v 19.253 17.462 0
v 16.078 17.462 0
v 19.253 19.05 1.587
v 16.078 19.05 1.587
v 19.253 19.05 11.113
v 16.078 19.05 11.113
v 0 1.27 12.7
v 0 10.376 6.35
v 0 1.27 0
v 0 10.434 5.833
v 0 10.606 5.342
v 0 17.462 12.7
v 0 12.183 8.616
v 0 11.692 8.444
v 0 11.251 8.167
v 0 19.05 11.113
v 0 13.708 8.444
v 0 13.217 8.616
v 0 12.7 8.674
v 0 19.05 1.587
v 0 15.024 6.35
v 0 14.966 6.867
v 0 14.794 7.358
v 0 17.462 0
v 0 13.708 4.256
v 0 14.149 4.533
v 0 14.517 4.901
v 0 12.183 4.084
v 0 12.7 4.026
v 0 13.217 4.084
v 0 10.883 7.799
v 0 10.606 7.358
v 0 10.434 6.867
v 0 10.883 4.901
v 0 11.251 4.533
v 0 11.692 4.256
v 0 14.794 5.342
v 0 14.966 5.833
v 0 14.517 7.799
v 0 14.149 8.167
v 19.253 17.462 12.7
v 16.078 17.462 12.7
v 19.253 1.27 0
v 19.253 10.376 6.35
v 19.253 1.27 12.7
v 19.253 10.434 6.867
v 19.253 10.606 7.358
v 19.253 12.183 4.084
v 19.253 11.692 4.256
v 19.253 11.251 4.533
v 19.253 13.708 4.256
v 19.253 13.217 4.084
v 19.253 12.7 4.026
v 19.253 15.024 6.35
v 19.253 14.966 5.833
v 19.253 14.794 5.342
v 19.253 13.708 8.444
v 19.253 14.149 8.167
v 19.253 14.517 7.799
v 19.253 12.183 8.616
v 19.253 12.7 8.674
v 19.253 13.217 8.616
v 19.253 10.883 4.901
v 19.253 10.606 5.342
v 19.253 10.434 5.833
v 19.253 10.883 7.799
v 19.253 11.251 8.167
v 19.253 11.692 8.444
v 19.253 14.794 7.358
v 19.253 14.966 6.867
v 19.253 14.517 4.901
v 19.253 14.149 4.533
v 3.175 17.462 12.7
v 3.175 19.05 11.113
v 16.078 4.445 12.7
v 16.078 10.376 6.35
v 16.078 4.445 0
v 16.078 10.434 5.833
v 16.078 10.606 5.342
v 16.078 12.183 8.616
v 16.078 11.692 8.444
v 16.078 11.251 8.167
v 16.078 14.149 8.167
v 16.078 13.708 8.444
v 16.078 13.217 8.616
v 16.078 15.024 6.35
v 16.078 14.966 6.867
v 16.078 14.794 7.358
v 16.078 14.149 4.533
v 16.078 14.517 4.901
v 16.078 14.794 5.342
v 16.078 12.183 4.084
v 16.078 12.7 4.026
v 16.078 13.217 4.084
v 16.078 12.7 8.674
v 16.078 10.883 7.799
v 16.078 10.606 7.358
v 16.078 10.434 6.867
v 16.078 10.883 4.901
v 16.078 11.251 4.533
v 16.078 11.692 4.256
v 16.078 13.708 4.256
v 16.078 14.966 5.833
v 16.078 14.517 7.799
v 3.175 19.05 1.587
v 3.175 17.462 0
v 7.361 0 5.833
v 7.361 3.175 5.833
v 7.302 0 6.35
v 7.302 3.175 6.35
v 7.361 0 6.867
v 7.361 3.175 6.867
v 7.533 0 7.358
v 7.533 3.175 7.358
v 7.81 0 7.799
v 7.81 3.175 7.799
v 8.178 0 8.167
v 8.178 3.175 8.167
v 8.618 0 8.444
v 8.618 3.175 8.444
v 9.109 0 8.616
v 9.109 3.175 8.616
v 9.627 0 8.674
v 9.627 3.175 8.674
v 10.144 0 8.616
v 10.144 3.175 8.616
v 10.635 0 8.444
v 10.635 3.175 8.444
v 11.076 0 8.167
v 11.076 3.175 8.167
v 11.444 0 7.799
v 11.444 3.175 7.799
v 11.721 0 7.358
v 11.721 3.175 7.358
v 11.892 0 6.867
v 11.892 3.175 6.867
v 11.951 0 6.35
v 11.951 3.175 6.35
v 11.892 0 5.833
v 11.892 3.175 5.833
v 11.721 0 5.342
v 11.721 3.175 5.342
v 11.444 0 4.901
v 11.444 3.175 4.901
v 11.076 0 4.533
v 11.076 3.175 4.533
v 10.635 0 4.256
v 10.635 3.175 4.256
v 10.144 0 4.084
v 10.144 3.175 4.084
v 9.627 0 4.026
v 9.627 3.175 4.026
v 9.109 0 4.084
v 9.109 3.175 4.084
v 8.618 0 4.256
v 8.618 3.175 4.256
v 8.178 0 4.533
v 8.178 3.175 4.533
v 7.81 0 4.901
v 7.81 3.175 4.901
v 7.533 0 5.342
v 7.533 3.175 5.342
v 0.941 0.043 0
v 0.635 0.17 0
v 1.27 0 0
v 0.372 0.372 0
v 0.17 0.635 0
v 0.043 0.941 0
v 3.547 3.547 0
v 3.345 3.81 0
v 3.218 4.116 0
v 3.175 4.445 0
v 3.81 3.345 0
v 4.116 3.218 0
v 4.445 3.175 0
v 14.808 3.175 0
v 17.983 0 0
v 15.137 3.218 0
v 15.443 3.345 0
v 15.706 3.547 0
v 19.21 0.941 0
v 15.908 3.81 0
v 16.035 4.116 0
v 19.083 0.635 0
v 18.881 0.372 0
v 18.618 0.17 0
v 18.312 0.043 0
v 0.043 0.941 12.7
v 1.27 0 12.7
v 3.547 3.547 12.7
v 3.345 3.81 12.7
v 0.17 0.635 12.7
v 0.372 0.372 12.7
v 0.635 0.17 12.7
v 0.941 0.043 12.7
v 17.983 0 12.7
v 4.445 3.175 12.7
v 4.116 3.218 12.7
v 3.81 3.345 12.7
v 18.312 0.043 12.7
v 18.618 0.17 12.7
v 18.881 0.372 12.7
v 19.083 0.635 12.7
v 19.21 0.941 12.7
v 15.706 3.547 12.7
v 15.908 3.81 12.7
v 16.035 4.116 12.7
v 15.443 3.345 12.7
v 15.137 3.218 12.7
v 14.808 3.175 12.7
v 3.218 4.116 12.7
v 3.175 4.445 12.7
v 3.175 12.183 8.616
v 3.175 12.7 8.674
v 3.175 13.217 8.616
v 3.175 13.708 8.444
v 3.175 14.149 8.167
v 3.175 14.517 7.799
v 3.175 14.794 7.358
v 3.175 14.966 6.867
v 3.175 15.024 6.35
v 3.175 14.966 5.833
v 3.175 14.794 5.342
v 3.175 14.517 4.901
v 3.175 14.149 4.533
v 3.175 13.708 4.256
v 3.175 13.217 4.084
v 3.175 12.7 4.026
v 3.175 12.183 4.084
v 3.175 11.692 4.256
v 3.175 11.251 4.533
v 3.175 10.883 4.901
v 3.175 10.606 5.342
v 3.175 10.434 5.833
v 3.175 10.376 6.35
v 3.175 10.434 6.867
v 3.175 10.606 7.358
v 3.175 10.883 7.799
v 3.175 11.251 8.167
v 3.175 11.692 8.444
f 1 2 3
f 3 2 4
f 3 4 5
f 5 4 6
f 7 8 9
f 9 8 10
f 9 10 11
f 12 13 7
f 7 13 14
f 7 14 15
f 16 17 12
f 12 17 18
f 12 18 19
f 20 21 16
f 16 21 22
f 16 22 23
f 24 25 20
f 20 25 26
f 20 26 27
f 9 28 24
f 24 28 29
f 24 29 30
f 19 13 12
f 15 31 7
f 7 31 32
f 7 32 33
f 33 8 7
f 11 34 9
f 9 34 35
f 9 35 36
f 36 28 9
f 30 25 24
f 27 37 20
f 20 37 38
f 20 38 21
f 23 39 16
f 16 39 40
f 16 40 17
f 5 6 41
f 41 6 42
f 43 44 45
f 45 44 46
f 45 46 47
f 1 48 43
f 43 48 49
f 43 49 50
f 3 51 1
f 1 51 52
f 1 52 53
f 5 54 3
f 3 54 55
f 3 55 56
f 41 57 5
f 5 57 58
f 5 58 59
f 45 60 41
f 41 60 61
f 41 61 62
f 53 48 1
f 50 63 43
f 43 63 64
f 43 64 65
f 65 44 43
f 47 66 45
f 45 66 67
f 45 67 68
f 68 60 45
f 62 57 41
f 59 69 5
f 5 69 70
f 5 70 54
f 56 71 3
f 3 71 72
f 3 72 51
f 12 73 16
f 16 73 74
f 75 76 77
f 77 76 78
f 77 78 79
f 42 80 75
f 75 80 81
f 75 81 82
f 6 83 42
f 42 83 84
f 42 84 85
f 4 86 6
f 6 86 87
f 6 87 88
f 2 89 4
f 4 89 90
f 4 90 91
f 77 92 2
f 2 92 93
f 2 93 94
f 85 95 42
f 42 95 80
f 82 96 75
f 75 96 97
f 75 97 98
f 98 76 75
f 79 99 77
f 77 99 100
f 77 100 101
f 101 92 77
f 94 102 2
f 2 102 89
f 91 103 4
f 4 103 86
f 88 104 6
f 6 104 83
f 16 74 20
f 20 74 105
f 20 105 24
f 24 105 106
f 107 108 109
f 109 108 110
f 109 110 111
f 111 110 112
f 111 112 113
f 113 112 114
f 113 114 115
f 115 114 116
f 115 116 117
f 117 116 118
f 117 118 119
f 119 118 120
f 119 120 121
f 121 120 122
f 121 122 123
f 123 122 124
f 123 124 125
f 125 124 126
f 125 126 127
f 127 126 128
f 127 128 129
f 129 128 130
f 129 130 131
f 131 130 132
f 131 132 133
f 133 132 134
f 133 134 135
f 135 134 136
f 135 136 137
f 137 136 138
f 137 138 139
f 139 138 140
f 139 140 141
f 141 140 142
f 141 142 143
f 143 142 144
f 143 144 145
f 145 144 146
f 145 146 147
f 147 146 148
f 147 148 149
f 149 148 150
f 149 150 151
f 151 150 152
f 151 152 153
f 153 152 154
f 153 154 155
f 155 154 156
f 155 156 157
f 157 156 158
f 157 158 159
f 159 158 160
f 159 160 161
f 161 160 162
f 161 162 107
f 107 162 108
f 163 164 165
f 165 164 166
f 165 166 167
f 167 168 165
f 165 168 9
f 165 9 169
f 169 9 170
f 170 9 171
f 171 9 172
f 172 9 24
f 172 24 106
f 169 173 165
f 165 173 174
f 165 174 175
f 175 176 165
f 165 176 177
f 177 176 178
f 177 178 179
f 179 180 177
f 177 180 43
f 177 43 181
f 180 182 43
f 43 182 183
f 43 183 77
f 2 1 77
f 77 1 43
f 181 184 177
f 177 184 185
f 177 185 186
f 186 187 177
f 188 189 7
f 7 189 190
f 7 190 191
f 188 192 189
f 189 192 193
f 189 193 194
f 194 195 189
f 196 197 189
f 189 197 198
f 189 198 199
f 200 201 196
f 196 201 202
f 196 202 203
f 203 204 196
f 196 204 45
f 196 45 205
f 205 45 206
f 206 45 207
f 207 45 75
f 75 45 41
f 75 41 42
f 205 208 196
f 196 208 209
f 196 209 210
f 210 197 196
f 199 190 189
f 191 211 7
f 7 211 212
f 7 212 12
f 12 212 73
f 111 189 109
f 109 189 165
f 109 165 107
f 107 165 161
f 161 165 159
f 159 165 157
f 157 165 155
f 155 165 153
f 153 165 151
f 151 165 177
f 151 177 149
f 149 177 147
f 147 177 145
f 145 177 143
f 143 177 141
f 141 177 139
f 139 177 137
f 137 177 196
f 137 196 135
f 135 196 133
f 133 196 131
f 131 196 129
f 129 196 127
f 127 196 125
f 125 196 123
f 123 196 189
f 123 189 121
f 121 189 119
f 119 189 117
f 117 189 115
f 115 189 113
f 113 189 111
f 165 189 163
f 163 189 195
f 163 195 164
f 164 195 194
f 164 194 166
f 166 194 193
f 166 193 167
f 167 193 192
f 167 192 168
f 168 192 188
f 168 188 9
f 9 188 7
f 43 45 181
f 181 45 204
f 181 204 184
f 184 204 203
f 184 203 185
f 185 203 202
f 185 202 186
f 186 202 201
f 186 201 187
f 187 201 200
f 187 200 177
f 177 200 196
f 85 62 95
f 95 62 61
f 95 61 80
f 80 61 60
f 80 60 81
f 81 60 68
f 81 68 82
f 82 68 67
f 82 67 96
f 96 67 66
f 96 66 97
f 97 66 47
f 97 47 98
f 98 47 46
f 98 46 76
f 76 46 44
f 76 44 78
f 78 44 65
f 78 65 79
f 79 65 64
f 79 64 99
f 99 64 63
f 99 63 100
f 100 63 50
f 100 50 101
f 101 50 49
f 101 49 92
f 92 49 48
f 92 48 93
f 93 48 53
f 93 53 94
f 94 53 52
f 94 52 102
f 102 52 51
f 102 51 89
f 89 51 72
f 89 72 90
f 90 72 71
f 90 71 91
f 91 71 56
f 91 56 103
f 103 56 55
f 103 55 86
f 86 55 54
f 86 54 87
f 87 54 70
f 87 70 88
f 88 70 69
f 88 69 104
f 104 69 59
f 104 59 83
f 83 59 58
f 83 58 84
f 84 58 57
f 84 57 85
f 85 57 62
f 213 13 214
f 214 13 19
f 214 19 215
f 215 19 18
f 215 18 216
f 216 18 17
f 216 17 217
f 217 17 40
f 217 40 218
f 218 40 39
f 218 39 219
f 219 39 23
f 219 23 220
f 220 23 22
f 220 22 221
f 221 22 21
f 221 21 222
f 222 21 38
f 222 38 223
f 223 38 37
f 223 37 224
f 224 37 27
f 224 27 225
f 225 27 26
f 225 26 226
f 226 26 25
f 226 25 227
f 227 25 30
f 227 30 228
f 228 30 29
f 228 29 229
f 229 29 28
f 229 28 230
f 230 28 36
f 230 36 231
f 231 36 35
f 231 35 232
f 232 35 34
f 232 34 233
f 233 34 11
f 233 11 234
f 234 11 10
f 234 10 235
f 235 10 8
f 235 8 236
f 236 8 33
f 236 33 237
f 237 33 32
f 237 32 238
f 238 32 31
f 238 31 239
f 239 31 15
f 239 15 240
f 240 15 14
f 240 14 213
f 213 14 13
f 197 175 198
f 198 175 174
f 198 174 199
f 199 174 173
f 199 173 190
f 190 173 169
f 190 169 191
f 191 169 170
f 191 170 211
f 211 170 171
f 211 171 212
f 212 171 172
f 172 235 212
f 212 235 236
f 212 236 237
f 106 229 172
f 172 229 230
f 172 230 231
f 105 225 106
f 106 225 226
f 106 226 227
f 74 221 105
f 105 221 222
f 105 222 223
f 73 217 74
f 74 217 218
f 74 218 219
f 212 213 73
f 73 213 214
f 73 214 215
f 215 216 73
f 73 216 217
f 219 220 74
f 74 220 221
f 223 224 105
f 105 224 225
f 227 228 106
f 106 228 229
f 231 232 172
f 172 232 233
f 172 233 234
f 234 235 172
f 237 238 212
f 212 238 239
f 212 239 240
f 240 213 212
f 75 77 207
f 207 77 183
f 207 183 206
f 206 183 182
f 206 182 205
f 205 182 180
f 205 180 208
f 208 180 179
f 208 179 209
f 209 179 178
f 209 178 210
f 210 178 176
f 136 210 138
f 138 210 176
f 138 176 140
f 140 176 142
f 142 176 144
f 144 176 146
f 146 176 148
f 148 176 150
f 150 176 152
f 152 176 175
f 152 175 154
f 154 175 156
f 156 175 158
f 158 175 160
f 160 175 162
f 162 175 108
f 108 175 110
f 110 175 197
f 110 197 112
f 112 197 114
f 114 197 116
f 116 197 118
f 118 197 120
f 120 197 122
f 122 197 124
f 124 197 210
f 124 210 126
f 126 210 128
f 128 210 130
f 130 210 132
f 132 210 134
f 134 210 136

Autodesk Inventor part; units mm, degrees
ref_plane "YZ Plane" through (0, 0, 0) normal (1, 0, 0) x (0, 1, 0)
ref_plane "XZ Plane" through (0, 0, 0) normal (0, 1, 0) x (-1, 0, 0)
ref_plane "XY Plane" through (0, 0, 0) normal (0, 0, 1) x (1, 0, 0)
sketch "Sketch1" plane through (0, 0, 0) normal (0, 0, 1) x (1, 0, 0)
  line L0 (0, 0) -> (19.4056, 0)
  line L1 (0, 0) -> (0, 19.05)
  line L2 (0, 19.05) -> (3.175, 19.05)
  line L3 (3.175, 0) -> (3.175, 3.175)
  line L4 (3.175, 3.175) -> (3.175, 19.05)
  line L5 (3.175, 3.175) -> (9.6266, 3.175)
  line L6 (9.6266, 3.175) -> (9.6266, 0)
  line L7 (19.2532, 0) -> (19.2532, 19.05)
  line L8 (19.2532, 19.05) -> (16.0782, 19.05)
  line L9 (16.0782, 3.175) -> (16.0782, 19.05)
  line L10 (16.0782, 3.175) -> (9.6266, 3.175)
  dimension "d0" = 19.4056
  dimension "d1" = 19.05
  dimension "d2" = 3.175
  dimension "d4" = 3.175
  dimension "d5" = 6.4516
extrude "Extrusion1" add sketch "Sketch1" along normal blind 12.7
sketch "Sketch2" plane through (3.175, 3.175, 0) normal (0, 1, 0) x (1, 0, 0)
  line L0 (12.9032, 0) -> (0, 0) projected
  line L1 (0, 0) -> (0, -12.7) projected
  line L2 (12.9032, -12.7) -> (0, -12.7) projected
  line L3 (12.9032, 0) -> (12.9032, -12.7) projected
  line L4 (0, 0) -> (6.4516, 0)
  line L5 (12.9032, 0) -> (0, 0) projected
  line L6 (6.4516, 0) -> (6.4516, -6.35)
  circle A0 centre (6.4516, -6.35) radius 2.3241
  point P0 (-3.175, 0)
  dimension "d8" = 6.4516
  dimension "d9" = 6.35
  dimension "d10" = 4.6482
extrude "Extrusion2" cut sketch "Sketch2" against normal blind 12.7 contours A0
chamfer "Chamfer1" distance 1.5875 angle 45 4 edges at (1.5875, 19.05, 0) (1.5875, 19.05, 12.7) (17.6657, 19.05, 12.7) (17.6657, 19.05, 0)
sketch "Sketch3" plane through (19.2532, 0, 12.7) normal (1, 0, 0) x (0, 0, -1)
  line L0 (11.1125, 19.05) -> (12.7, 17.4625) projected
  line L1 (11.1125, 19.05) -> (1.5875, 19.05) projected
  line L2 (0, 17.4625) -> (1.5875, 19.05) projected
  line L3 (0, 0) -> (0, 17.4625) projected
  line L4 (12.7, 0) -> (0, 0) projected
  line L5 (12.7, 0) -> (12.7, 17.4625) projected
  line L6 (12.7, 0) -> (0, 0) projected
  line L7 (12.7, 0) -> (6.35, 0)
  line L8 (6.35, 0) -> (6.35, 12.7)
  circle A0 centre (6.35, 12.7) radius 2.3241
  dimension "d16" = 6.35
  dimension "d17" = 12.7
  dimension "d18" = 4.6482
extrude "Extrusion3" cut sketch "Sketch3" against normal through all contours A0
fillet "Fillet1" radius 1.27 4 edges at (3.175, 3.175, 6.35) (16.0782, 3.175, 6.35) (19.2532, 0, 6.35) (0, 0, 6.35)
properties part number "U Bracket"
